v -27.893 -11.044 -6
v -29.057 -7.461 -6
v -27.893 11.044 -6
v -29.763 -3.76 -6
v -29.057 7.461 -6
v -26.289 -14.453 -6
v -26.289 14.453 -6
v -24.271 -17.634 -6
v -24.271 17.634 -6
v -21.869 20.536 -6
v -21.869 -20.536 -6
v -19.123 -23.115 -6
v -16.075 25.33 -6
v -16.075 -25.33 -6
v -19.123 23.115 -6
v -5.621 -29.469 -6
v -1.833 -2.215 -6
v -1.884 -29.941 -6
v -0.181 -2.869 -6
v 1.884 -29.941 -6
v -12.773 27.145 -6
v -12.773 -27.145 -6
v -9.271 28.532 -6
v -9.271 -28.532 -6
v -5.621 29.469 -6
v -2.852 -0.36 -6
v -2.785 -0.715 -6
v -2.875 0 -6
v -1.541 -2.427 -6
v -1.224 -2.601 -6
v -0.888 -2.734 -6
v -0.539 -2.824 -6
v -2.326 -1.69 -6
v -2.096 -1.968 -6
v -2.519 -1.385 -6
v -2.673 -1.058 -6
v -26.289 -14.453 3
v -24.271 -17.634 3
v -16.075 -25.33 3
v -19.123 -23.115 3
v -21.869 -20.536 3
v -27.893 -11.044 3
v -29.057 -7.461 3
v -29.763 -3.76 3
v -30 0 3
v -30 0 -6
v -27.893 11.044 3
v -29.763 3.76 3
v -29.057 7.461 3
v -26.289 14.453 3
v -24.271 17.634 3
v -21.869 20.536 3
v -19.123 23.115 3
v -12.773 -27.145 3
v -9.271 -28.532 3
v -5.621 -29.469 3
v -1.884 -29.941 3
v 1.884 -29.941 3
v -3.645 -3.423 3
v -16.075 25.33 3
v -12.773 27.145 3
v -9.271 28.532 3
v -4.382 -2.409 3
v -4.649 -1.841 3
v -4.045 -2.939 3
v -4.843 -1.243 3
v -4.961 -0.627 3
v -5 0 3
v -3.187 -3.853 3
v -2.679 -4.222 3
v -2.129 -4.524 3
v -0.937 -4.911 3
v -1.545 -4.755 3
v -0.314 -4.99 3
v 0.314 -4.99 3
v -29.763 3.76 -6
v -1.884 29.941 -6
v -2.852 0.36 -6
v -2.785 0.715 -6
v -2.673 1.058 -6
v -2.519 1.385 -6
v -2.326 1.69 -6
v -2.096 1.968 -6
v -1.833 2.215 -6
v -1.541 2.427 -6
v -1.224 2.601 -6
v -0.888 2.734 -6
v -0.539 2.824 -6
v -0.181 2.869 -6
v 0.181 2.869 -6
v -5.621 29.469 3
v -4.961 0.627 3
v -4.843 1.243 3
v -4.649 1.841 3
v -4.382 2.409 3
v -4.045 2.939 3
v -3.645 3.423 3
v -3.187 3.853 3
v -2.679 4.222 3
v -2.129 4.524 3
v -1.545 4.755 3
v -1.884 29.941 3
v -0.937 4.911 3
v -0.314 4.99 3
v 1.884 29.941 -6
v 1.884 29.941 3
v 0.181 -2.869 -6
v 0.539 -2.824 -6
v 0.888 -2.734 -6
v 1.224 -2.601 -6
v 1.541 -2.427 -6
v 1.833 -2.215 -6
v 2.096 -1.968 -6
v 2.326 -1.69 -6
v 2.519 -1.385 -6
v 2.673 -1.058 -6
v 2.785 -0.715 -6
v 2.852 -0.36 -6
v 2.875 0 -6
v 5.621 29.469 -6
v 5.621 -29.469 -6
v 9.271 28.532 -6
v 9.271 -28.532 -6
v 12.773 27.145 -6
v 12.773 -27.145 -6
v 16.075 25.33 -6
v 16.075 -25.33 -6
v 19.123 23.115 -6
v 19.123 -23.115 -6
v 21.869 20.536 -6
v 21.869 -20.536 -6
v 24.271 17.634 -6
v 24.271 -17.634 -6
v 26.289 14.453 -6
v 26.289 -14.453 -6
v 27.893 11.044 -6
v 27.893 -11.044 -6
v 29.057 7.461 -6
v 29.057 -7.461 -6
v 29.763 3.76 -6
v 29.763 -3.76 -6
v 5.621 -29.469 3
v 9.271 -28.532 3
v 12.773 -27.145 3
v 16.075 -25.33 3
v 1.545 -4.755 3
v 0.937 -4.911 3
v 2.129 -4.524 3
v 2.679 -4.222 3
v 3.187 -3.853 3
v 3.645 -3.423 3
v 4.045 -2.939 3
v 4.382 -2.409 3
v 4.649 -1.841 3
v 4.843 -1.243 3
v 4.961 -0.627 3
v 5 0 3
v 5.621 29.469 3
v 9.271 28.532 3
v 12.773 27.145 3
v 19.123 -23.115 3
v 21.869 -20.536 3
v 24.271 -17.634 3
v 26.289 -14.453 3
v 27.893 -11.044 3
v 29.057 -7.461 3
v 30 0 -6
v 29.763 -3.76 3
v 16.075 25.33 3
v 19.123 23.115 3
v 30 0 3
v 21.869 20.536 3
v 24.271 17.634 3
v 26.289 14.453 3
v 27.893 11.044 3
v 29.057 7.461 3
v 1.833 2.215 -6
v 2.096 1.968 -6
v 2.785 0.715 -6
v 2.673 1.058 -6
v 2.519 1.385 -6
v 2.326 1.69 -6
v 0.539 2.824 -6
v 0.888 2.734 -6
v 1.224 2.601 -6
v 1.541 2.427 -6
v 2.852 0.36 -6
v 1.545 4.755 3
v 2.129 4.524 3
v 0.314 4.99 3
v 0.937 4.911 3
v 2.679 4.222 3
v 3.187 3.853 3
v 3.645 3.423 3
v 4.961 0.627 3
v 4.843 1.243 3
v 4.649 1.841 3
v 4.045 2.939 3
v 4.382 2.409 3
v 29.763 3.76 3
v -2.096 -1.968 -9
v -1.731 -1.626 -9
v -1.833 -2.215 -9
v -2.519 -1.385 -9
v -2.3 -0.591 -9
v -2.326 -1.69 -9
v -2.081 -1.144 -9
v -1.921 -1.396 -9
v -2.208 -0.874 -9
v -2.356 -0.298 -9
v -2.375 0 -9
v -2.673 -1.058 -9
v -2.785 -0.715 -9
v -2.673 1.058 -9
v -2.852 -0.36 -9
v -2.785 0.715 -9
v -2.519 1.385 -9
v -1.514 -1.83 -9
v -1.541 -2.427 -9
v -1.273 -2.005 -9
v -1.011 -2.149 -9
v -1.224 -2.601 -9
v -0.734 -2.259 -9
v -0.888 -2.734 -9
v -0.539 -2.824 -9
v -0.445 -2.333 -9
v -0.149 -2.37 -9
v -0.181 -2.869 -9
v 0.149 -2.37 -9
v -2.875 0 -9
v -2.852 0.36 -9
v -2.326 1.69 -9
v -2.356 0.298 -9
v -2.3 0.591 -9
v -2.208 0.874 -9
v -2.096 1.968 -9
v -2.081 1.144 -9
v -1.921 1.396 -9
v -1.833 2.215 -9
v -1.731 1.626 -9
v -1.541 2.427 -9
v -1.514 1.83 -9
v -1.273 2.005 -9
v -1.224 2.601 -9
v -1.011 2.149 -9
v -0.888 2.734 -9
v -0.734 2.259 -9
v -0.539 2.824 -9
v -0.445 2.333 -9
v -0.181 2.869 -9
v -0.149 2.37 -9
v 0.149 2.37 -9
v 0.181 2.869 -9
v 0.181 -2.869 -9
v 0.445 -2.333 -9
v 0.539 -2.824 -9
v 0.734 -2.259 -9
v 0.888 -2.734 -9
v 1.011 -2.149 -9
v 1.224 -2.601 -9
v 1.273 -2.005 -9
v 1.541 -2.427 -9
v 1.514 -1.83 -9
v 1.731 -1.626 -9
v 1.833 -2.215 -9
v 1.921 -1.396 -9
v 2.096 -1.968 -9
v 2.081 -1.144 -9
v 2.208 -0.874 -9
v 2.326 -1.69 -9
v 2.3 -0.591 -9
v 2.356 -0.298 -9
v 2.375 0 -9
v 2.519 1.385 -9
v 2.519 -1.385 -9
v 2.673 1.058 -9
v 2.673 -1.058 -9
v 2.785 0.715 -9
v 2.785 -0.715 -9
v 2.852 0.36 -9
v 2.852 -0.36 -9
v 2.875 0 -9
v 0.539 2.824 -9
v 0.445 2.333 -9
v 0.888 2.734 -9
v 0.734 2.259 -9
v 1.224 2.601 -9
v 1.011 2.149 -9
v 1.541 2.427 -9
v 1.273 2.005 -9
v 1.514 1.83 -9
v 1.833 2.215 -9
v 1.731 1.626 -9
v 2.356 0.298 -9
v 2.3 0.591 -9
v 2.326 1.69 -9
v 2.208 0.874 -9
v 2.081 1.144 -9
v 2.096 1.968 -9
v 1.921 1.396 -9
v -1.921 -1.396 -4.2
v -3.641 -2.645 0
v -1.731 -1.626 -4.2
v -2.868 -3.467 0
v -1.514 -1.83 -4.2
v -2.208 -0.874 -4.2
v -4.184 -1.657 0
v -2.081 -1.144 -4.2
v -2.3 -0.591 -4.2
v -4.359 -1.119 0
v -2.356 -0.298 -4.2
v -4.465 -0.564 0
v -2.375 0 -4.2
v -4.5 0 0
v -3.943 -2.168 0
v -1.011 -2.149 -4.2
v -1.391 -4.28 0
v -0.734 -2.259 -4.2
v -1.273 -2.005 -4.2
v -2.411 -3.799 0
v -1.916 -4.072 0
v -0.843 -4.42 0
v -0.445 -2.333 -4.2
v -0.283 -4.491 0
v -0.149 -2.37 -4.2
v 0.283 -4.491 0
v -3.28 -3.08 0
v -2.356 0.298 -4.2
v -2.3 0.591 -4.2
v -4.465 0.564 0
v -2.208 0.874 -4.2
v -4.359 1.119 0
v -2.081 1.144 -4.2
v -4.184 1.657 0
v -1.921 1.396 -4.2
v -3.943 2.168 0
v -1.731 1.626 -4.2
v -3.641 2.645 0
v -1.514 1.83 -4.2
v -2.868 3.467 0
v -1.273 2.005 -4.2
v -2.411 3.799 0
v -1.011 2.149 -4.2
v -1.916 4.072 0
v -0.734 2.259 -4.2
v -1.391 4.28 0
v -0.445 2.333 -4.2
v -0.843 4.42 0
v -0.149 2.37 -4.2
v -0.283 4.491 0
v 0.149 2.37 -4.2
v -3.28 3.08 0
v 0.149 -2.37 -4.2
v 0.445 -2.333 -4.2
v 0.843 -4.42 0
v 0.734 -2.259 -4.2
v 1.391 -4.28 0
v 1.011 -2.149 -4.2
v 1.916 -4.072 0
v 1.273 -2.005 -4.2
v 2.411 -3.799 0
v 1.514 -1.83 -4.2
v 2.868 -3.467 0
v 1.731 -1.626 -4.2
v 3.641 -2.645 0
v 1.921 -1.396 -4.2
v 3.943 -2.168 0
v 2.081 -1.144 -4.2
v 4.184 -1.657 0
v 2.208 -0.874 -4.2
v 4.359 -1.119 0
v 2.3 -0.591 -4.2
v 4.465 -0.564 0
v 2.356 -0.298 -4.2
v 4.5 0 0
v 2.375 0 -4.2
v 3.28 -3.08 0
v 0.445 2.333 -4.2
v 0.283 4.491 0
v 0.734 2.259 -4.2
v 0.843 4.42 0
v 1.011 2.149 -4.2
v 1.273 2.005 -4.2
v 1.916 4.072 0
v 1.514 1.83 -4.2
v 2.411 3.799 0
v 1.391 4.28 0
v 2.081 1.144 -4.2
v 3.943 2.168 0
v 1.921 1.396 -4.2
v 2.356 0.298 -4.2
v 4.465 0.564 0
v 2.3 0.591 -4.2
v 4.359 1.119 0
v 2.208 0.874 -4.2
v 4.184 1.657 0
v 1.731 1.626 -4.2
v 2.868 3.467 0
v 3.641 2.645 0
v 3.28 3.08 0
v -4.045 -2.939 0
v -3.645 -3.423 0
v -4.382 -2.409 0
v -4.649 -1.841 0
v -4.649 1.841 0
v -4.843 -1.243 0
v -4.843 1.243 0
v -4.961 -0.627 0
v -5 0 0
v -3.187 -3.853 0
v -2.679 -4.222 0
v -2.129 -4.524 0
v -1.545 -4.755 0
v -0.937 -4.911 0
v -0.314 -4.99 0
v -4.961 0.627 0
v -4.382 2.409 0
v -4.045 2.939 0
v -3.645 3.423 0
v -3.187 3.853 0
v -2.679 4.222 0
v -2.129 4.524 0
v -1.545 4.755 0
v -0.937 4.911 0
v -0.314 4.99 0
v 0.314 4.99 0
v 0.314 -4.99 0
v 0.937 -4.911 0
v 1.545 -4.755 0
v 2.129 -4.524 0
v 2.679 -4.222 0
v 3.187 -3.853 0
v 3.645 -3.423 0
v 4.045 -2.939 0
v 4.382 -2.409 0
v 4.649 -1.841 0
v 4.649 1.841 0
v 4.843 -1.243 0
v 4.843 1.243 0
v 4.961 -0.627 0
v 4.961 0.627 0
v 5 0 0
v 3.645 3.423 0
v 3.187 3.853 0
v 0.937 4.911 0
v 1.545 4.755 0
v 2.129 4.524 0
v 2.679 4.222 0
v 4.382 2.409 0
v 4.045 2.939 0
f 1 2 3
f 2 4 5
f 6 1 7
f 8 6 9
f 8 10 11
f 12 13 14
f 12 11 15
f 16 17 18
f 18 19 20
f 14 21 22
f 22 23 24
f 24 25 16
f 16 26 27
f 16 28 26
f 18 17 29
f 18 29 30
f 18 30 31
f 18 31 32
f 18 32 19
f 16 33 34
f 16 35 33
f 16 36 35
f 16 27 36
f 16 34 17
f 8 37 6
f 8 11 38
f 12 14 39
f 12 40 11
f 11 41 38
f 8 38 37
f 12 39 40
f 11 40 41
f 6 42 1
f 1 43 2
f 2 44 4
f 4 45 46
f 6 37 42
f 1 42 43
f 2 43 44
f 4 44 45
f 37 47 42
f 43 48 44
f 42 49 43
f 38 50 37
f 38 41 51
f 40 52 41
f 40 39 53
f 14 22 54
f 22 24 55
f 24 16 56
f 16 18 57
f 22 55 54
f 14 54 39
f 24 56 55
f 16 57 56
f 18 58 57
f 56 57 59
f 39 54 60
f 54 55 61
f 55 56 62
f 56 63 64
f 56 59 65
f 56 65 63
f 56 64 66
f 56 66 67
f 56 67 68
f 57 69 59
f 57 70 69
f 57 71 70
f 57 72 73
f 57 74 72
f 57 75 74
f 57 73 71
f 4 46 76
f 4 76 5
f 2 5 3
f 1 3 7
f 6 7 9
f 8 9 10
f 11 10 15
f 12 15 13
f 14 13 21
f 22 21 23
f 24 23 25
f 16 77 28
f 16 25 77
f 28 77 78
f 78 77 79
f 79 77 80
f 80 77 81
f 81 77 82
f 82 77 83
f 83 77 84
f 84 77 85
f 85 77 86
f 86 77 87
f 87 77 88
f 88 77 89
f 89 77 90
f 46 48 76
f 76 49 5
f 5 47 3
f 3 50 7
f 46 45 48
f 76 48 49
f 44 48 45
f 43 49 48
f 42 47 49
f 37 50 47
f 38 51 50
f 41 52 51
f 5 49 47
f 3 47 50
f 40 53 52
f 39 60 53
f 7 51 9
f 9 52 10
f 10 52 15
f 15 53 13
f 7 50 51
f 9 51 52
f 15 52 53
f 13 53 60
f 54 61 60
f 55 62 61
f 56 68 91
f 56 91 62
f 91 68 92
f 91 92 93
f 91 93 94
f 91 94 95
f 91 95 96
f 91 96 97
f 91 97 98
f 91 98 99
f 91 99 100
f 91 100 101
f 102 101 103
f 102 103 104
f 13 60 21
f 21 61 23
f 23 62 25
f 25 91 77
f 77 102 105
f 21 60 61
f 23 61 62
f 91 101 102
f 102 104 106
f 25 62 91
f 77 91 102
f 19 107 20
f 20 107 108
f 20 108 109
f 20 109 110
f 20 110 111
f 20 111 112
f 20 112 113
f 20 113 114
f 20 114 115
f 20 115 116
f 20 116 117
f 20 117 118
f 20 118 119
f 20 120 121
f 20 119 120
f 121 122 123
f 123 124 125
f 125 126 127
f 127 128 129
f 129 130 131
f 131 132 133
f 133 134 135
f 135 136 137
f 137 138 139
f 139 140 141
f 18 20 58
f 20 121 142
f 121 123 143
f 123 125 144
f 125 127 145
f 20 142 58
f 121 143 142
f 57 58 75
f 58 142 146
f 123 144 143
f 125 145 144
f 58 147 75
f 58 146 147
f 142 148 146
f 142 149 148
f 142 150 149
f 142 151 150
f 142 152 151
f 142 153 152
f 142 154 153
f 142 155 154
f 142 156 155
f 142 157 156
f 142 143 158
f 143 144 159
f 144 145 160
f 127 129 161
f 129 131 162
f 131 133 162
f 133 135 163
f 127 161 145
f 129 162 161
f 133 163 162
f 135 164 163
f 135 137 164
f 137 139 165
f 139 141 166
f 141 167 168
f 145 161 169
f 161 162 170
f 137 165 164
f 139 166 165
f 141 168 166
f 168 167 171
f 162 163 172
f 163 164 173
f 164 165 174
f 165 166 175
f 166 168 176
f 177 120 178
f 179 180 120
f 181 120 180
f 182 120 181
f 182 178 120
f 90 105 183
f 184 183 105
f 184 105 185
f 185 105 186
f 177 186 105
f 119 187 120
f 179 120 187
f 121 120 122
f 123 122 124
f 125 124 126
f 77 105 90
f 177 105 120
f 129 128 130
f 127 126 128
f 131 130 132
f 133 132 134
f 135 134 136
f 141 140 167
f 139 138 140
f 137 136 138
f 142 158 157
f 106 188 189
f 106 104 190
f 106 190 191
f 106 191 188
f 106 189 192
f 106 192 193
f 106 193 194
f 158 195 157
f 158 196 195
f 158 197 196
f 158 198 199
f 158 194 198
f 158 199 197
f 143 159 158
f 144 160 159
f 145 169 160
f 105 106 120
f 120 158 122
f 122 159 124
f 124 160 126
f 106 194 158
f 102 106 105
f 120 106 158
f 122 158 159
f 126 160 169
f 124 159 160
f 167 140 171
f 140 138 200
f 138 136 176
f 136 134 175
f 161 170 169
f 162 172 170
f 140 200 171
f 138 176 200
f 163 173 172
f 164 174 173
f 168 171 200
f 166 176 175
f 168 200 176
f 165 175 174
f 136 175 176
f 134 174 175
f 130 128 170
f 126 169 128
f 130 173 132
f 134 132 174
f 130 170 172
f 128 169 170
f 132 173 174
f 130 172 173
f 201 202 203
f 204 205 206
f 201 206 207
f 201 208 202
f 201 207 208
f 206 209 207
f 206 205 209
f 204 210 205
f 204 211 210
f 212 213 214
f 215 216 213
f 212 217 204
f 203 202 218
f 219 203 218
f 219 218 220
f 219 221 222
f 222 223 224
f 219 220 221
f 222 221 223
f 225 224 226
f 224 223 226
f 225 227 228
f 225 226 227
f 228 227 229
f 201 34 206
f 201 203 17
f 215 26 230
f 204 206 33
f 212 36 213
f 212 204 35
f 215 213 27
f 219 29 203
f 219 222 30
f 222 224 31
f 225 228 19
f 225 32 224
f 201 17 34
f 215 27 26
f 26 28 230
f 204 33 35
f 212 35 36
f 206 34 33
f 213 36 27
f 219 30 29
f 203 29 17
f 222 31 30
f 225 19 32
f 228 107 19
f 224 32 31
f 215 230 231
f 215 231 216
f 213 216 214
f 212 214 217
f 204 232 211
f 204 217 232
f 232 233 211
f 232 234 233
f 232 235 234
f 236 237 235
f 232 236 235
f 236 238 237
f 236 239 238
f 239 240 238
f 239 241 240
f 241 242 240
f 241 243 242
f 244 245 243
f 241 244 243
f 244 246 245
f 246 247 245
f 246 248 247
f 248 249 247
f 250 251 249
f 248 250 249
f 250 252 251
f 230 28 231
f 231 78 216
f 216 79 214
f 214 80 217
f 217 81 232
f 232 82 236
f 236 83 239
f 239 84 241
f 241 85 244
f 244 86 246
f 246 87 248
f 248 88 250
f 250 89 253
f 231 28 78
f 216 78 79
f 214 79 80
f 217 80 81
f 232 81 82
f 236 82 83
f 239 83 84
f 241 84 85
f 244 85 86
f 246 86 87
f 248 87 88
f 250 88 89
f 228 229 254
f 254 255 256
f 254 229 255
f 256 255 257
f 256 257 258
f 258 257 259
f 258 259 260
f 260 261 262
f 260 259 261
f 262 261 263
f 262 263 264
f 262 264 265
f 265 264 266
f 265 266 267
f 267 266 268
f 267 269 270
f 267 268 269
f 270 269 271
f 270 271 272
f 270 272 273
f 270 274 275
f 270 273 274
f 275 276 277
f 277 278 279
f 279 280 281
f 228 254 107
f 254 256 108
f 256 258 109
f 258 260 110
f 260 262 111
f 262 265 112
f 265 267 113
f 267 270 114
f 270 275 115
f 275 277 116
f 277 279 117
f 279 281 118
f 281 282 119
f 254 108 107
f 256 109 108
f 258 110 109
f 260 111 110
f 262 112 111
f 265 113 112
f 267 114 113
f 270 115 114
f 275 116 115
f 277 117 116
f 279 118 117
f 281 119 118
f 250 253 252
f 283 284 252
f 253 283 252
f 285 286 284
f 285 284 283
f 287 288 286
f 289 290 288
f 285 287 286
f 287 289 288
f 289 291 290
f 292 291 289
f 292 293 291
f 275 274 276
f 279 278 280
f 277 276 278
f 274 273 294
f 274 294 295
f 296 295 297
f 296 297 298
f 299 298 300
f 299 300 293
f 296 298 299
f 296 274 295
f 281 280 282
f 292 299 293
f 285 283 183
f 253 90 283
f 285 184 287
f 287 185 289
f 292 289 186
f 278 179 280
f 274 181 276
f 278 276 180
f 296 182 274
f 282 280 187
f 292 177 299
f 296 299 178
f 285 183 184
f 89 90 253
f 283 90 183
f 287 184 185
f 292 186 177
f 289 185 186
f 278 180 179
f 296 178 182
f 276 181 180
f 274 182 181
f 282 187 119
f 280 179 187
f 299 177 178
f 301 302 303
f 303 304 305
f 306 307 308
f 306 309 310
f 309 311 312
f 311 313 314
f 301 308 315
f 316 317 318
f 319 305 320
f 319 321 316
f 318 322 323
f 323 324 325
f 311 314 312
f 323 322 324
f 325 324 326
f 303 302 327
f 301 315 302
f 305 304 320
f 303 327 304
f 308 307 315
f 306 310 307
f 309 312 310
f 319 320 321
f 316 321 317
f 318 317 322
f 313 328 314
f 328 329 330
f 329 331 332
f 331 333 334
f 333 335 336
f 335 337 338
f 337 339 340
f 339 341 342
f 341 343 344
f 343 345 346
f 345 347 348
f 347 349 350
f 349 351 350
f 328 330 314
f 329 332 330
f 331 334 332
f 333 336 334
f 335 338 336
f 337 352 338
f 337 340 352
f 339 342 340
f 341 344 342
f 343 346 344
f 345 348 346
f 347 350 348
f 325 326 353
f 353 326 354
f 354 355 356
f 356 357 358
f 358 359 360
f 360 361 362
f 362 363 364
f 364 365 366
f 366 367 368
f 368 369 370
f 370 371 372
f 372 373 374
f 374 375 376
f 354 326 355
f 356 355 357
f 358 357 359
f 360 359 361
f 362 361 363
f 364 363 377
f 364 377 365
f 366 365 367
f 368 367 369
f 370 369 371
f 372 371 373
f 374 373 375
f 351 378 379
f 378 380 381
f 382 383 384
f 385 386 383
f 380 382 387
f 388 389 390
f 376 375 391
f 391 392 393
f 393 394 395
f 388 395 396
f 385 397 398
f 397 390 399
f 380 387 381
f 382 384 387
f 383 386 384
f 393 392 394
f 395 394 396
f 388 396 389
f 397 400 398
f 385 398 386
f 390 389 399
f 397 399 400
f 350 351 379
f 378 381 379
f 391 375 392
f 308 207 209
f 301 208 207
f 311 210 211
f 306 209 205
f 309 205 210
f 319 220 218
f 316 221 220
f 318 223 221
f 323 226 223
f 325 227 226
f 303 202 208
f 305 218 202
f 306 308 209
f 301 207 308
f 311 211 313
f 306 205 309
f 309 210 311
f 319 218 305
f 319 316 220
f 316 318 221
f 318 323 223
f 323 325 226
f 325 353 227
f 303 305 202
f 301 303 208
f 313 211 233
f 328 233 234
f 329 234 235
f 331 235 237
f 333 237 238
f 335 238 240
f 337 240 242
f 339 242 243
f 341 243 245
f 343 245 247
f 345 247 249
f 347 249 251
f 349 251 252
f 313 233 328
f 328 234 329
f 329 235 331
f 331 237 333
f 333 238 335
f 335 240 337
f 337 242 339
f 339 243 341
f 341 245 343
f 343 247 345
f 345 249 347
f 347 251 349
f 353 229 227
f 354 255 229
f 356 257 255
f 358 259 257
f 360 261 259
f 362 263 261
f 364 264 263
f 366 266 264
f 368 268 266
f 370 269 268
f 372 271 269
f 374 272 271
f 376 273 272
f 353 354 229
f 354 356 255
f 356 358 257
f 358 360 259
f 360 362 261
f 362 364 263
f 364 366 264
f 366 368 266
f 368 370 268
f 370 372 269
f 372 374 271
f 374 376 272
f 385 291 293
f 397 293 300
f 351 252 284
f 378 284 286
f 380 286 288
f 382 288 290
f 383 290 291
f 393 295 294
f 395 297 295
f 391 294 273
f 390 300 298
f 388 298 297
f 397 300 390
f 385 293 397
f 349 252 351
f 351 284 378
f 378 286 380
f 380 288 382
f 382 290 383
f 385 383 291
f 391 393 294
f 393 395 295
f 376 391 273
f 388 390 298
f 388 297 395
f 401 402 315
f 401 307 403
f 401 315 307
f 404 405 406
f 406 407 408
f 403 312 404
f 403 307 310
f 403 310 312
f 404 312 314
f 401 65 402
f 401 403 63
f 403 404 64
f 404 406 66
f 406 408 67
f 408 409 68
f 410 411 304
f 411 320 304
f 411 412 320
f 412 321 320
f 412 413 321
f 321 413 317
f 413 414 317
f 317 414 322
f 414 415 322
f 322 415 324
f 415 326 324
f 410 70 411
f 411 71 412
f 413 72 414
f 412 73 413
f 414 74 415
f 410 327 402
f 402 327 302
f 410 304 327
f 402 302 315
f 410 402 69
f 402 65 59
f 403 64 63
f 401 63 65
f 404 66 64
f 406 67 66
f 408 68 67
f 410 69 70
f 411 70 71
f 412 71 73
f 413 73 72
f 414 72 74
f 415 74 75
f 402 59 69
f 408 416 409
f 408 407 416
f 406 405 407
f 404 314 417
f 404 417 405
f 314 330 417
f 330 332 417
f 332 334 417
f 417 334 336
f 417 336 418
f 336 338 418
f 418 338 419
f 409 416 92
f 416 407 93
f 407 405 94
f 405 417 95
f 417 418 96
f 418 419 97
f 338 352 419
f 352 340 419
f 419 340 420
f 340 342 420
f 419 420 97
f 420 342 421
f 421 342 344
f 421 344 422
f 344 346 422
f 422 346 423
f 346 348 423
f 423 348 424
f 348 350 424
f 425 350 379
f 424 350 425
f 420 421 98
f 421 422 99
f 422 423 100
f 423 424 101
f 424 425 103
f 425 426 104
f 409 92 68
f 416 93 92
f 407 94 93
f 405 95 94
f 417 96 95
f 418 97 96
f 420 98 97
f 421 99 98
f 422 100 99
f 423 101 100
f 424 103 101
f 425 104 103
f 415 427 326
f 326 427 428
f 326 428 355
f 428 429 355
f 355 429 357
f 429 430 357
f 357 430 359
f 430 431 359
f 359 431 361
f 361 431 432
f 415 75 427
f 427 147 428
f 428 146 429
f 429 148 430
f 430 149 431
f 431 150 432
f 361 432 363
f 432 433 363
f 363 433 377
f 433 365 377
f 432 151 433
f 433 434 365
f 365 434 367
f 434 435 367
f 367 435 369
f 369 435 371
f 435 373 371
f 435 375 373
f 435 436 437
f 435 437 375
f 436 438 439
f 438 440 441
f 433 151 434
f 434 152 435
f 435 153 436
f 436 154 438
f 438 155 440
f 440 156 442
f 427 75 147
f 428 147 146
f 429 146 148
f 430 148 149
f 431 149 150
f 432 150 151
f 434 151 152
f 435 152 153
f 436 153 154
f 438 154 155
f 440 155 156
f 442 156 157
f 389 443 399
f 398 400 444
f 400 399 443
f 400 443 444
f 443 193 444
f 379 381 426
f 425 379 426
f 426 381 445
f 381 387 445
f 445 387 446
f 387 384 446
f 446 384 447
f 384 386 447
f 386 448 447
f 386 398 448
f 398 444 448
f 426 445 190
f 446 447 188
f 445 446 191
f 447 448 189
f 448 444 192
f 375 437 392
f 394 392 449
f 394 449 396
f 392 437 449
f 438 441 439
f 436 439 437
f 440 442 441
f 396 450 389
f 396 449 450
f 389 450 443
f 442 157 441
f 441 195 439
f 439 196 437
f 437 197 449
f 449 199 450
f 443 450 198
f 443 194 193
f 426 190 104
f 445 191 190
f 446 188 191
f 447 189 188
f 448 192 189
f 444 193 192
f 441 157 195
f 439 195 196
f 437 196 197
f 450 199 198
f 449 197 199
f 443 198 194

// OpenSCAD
$fn = 50;

difference() {
	union() {
		translate(v = [0, 0, -6.0]) {
			cylinder(h = 9, r = 30.0);
		}
		#translate(v = [0, 0, -9.0]) {
			cylinder(h = 9, r = 2.875);
		}
	}
	union() {
		translate(v = [0, 0, 0]) {
			rotate(a = [0, 0, 0]) {
				difference() {
					union() {
						translate(v = [0, 0, -9.0]) {
							cylinder(h = 9, r = 2.25);
						}
						translate(v = [0, 0, -4.2]) {
							cylinder(h = 4.2, r1 = 2.375, r2 = 4.5);
						}
						translate(v = [0, 0, -9.0]) {
							cylinder(h = 9, r = 2.375);
						}
						translate(v = [0, 0, -9.0]) {
							cylinder(h = 9, r = 2.25);
						}
					}
					union();
				}
			}
		}
		#cylinder(h = 3, r = 5.0);
	}
}
